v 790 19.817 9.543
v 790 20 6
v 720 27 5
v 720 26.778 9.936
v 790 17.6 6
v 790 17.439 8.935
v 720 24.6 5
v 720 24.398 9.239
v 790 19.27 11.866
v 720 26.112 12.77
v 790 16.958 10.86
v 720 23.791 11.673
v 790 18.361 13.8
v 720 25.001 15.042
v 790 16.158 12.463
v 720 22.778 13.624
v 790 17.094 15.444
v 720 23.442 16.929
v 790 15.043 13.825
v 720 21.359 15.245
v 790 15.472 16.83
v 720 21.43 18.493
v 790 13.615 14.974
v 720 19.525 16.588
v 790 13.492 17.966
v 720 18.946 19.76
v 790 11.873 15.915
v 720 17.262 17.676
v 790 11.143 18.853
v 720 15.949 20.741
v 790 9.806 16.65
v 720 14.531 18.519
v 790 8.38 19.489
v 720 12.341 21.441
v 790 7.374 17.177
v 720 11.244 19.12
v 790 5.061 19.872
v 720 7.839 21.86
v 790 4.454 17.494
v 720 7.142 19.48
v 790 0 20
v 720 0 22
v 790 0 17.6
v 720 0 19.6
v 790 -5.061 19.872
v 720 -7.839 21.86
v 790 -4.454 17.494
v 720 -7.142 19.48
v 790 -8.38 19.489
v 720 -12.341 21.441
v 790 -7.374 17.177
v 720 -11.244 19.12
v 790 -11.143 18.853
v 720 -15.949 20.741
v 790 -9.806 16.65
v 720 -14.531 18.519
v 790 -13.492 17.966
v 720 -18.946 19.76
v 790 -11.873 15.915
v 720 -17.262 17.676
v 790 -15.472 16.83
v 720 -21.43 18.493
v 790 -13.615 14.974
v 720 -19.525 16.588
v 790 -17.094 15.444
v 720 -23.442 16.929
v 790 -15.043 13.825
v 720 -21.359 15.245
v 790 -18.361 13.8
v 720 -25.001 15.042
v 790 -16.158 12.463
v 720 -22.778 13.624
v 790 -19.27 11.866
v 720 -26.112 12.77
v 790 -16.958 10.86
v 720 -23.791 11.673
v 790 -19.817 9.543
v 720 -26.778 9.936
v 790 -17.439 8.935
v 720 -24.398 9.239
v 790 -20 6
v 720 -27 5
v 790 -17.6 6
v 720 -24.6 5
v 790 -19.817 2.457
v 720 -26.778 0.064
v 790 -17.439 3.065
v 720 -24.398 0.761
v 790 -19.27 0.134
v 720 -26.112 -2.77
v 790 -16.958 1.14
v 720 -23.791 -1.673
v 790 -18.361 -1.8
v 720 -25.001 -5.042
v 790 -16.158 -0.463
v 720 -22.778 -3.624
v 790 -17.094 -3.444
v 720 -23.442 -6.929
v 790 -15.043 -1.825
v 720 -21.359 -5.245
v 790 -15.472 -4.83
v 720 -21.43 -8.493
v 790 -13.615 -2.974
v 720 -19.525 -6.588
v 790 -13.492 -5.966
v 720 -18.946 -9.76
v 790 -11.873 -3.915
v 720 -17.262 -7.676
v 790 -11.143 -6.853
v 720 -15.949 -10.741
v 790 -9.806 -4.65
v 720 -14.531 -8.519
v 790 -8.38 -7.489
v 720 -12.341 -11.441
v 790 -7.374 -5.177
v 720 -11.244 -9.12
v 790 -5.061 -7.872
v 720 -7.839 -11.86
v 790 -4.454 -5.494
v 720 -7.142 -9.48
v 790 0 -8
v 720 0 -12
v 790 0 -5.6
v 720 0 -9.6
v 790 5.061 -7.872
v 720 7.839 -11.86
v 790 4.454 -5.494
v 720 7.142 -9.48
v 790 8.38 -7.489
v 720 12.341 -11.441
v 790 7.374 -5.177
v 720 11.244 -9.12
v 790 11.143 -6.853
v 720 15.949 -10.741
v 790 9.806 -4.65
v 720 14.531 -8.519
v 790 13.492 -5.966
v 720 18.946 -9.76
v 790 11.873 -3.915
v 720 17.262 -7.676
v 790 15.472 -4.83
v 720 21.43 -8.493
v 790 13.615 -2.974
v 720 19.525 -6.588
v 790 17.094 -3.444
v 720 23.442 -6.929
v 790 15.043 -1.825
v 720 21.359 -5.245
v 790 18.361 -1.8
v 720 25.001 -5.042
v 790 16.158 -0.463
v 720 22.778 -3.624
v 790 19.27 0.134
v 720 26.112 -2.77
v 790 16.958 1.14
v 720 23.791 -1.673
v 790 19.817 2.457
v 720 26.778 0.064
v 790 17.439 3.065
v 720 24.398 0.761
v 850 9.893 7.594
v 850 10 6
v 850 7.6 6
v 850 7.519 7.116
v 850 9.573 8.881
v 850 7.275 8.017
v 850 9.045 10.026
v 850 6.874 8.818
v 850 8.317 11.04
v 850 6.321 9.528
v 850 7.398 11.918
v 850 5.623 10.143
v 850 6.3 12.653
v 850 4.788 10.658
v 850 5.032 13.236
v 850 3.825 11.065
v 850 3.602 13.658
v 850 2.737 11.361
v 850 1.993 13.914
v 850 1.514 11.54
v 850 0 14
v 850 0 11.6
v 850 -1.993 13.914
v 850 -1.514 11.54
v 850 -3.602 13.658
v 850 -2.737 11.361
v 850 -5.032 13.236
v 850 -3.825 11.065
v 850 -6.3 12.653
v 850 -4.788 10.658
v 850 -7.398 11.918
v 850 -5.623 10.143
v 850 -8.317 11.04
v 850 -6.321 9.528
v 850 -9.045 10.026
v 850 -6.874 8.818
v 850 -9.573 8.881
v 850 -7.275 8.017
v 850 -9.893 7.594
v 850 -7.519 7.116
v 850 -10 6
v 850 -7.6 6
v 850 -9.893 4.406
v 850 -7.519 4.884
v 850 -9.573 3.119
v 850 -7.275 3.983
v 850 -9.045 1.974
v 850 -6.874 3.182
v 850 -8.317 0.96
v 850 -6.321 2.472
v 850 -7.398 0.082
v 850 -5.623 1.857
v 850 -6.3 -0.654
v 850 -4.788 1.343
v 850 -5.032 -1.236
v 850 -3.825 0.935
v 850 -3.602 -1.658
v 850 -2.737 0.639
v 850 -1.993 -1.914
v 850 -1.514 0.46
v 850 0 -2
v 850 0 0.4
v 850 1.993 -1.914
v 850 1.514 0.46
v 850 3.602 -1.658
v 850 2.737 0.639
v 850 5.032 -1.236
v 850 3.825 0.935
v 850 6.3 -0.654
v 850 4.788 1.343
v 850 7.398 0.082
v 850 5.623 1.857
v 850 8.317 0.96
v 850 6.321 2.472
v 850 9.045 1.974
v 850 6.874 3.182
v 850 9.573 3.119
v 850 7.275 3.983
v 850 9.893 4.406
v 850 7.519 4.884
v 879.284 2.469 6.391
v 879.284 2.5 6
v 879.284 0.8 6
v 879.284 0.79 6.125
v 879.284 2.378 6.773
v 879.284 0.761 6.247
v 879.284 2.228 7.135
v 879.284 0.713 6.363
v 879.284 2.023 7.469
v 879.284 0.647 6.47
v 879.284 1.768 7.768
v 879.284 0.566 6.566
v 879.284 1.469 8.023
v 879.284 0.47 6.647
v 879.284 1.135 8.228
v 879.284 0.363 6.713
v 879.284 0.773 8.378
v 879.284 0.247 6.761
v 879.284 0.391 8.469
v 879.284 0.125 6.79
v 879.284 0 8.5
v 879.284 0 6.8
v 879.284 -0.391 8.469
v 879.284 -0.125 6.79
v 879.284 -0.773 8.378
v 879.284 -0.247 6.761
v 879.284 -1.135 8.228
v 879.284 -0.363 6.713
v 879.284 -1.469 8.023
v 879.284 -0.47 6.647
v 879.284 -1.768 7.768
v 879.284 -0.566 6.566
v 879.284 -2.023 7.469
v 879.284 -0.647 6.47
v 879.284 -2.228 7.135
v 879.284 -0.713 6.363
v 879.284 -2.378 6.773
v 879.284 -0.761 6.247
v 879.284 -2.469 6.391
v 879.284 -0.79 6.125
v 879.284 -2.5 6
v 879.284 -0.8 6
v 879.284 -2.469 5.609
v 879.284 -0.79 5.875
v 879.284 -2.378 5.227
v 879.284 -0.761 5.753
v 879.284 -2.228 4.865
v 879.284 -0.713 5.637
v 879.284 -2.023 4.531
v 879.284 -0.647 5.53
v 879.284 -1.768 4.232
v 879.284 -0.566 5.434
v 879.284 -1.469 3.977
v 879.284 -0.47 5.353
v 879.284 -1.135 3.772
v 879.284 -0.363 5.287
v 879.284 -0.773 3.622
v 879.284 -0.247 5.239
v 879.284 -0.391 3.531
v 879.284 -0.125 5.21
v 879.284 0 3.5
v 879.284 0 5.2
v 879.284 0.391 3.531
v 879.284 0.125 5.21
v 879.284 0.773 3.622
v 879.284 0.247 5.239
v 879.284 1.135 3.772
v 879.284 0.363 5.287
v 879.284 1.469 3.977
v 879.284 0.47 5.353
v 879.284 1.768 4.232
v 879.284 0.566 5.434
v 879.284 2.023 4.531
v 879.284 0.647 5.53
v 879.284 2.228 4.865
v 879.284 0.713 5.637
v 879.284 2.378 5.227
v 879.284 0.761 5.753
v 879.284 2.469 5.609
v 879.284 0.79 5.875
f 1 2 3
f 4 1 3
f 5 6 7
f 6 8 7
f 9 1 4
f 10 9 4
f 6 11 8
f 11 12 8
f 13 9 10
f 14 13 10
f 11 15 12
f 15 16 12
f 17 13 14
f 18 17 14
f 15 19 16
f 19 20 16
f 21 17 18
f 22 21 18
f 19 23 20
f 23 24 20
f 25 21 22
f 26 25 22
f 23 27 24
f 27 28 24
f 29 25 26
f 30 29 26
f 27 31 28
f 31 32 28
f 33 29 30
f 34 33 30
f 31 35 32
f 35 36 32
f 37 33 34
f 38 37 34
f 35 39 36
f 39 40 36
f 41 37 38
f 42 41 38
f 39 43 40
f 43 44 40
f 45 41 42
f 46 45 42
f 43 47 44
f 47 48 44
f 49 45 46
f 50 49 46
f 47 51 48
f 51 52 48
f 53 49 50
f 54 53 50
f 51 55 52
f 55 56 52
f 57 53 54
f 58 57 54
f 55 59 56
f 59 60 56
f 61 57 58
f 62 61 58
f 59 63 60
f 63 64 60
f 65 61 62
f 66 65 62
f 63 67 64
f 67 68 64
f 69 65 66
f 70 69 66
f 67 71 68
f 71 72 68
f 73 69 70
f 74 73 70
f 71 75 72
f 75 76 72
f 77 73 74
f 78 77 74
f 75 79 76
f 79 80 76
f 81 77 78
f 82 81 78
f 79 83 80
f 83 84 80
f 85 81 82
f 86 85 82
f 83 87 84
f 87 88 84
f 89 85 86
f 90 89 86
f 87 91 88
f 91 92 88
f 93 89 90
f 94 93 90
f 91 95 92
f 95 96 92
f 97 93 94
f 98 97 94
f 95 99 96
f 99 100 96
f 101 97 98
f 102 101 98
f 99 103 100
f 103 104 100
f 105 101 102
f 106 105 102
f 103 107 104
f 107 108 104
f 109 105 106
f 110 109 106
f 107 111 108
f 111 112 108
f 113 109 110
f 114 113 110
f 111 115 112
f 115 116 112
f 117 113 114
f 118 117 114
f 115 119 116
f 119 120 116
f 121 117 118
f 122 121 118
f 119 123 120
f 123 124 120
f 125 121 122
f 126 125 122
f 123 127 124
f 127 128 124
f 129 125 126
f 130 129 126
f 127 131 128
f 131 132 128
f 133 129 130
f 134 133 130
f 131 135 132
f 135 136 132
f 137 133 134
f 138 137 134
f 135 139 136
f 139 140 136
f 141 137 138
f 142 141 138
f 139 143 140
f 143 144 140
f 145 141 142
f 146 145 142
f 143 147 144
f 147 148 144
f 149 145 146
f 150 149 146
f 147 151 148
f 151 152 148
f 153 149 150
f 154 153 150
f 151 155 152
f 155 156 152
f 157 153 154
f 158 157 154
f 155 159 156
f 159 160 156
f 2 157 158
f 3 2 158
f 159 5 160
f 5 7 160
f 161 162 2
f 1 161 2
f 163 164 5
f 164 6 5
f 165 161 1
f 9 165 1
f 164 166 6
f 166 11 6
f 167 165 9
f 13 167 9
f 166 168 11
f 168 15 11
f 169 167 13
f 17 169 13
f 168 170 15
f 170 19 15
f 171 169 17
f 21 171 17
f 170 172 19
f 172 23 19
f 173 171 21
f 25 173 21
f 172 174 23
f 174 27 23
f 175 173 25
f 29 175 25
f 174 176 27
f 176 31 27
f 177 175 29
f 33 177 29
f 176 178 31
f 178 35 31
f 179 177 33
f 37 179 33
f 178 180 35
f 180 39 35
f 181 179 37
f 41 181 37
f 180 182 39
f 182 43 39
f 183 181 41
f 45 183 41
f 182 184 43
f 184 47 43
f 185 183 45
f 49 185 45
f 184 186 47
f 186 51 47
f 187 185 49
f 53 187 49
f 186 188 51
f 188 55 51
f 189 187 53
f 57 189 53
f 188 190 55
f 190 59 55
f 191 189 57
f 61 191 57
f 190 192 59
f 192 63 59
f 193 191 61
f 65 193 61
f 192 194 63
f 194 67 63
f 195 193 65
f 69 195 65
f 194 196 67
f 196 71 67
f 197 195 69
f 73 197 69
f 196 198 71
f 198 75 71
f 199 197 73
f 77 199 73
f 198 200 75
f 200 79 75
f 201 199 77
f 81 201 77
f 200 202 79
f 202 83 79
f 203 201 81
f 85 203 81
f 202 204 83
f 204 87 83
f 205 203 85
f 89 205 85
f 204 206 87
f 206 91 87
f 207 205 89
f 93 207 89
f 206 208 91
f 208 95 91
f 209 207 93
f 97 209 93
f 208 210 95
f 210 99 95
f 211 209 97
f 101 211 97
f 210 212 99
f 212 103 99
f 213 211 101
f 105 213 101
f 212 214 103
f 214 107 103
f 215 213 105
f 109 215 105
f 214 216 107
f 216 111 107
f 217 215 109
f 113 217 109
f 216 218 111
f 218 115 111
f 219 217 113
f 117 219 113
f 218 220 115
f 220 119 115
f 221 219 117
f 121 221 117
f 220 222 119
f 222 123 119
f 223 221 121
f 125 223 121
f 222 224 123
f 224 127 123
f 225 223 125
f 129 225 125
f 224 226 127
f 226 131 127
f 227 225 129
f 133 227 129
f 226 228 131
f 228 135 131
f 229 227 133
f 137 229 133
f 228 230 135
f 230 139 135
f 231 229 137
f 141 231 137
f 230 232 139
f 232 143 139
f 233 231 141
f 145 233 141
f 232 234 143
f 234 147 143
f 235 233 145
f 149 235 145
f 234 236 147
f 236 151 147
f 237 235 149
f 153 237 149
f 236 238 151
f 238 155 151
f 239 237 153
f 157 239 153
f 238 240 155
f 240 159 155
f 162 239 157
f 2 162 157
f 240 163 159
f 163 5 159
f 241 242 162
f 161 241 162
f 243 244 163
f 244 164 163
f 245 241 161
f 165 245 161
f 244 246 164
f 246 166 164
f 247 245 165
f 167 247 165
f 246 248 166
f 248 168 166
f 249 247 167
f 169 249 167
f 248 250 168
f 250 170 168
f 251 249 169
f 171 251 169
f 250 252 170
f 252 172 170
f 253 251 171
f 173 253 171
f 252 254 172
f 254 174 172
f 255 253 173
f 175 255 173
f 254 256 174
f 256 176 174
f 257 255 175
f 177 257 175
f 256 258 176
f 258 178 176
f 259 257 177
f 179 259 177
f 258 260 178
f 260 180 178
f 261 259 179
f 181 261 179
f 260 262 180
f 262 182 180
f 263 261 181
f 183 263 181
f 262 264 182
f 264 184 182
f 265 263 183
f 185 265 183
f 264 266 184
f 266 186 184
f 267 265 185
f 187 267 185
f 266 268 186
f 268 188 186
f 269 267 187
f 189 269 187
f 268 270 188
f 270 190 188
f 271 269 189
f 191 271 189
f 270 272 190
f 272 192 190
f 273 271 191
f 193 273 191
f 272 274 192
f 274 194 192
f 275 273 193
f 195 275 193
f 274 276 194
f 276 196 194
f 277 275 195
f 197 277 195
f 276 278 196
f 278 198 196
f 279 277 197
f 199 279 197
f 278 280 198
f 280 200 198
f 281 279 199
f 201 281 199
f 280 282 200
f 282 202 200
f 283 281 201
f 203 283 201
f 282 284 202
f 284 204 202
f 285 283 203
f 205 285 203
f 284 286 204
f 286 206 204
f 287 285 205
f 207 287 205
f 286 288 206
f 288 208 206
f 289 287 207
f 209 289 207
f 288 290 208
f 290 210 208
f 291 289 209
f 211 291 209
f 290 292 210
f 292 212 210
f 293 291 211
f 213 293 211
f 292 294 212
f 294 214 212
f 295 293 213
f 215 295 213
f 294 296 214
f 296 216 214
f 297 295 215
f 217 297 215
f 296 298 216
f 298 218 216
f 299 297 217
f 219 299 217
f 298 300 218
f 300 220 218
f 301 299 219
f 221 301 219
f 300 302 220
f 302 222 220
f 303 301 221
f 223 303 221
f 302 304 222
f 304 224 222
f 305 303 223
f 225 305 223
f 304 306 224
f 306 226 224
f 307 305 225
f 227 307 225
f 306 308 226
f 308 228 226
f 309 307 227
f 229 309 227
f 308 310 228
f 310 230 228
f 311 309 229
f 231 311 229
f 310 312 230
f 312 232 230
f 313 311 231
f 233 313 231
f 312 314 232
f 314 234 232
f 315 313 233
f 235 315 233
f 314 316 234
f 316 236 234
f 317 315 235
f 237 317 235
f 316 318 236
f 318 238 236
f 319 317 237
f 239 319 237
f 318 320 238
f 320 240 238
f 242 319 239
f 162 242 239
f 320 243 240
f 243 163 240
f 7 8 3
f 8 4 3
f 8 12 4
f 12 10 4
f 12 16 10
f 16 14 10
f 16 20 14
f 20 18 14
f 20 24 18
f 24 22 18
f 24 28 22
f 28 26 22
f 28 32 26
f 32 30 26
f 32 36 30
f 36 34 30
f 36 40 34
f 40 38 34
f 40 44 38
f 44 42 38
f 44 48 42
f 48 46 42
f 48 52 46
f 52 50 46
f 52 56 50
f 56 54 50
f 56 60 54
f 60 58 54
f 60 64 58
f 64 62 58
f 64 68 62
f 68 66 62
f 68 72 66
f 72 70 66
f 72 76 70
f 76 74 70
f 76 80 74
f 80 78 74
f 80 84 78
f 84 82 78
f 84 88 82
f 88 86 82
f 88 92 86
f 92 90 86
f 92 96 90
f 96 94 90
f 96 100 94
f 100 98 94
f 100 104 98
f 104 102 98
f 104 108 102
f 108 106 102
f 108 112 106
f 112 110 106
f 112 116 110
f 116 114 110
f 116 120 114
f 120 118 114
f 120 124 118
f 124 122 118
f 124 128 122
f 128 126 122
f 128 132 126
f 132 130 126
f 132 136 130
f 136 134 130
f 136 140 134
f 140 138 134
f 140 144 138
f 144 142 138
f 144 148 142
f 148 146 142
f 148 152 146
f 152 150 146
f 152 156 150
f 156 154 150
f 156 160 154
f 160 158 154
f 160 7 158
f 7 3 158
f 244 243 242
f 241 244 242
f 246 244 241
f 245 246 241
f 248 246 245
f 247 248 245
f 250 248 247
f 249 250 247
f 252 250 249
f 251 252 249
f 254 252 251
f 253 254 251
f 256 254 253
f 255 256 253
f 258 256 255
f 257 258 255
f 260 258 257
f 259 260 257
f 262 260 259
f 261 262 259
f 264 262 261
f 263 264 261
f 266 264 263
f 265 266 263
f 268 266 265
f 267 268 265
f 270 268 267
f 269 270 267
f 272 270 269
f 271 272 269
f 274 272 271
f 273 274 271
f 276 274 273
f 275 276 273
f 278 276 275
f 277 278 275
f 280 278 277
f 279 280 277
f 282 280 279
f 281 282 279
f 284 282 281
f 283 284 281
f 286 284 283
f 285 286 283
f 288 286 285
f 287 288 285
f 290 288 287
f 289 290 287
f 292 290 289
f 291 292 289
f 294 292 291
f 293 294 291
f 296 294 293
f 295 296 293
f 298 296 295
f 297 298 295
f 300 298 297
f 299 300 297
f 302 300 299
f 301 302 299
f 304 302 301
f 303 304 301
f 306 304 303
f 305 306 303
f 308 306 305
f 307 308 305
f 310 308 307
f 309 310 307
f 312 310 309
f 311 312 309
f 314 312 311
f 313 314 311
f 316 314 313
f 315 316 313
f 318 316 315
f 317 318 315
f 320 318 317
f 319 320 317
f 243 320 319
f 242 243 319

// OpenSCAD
polyhedron(points=[[720.0, 27.0, 5.0], [720.0, 26.777933, 9.935569], [720.0, 26.11167, 12.770289], [720.0, 25.000634, 15.041843], [720.0, 23.442407, 16.928744], [720.0, 21.429914, 18.492909], [720.0, 18.945652, 19.760034], [720.0, 15.94881, 20.74114], [720.0, 12.341047, 21.440681], [720.0, 7.838845, 21.86018], [720.0, 0.0, 22.0], [720.0, -7.838845, 21.86018], [720.0, -12.341047, 21.440681], [720.0, -15.94881, 20.74114], [720.0, -18.945652, 19.760034], [720.0, -21.429914, 18.492909], [720.0, -23.442407, 16.928744], [720.0, -25.000634, 15.041843], [720.0, -26.11167, 12.770289], [720.0, -26.777933, 9.935569], [720.0, -27.0, 5.0], [720.0, -26.777933, 0.064431], [720.0, -26.11167, -2.770289], [720.0, -25.000634, -5.041843], [720.0, -23.442407, -6.928744], [720.0, -21.429914, -8.492909], [720.0, -18.945652, -9.760034], [720.0, -15.94881, -10.74114], [720.0, -12.341047, -11.440681], [720.0, -7.838845, -11.86018], [720.0, -0.0, -12.0], [720.0, 7.838845, -11.86018], [720.0, 12.341047, -11.440681], [720.0, 15.94881, -10.74114], [720.0, 18.945652, -9.760034], [720.0, 21.429914, -8.492909], [720.0, 23.442407, -6.928744], [720.0, 25.000634, -5.041843], [720.0, 26.11167, -2.770289], [720.0, 26.777933, 0.064431], [720.0, 24.6, 5.0], [720.0, 24.397672, 9.238783], [720.0, 23.790633, 11.673307], [720.0, 22.778355, 13.624171], [720.0, 21.358637, 15.244686], [720.0, 19.525033, 16.588028], [720.0, 17.261594, 17.676264], [720.0, 14.531138, 18.518861], [720.0, 11.244065, 19.119644], [720.0, 7.142058, 19.479919], [720.0, 0.0, 19.6], [720.0, -7.142058, 19.479919], [720.0, -11.244065, 19.119644], [720.0, -14.531138, 18.518861], [720.0, -17.261594, 17.676264], [720.0, -19.525033, 16.588028], [720.0, -21.358637, 15.244686], [720.0, -22.778355, 13.624171], [720.0, -23.790633, 11.673307], [720.0, -24.397672, 9.238783], [720.0, -24.6, 5.0], [720.0, -24.397672, 0.761217], [720.0, -23.790633, -1.673307], [720.0, -22.778355, -3.624171], [720.0, -21.358637, -5.244686], [720.0, -19.525033, -6.588028], [720.0, -17.261594, -7.676264], [720.0, -14.531138, -8.518861], [720.0, -11.244065, -9.119644], [720.0, -7.142058, -9.479919], [720.0, -0.0, -9.6], [720.0, 7.142058, -9.479919], [720.0, 11.244065, -9.119644], [720.0, 14.531138, -8.518861], [720.0, 17.261594, -7.676264], [720.0, 19.525033, -6.588028], [720.0, 21.358637, -5.244686], [720.0, 22.778355, -3.624171], [720.0, 23.790633, -1.673307], [720.0, 24.397672, 0.761217], [790.0, 20.0, 6.0], [790.0, 19.817312, 9.542723], [790.0, 19.270214, 11.865934], [790.0, 18.361355, 13.799892], [790.0, 17.094267, 15.444499], [790.0, 15.471678, 16.830174], [790.0, 13.492141, 17.965987], [790.0, 11.142703, 18.852948], [790.0, 8.379906, 19.48915], [790.0, 5.061033, 19.872119], [790.0, 0.0, 20.0], [790.0, -5.061033, 19.872119], [790.0, -8.379906, 19.48915], [790.0, -11.142703, 18.852948], [790.0, -13.492141, 17.965987], [790.0, -15.471678, 16.830174], [790.0, -17.094267, 15.444499], [790.0, -18.361355, 13.799892], [790.0, -19.270214, 11.865934], [790.0, -19.817312, 9.542723], [790.0, -20.0, 6.0], [790.0, -19.817312, 2.457277], [790.0, -19.270214, 0.134066], [790.0, -18.361355, -1.799892], [790.0, -17.094267, -3.444499], [790.0, -15.471678, -4.830174], [790.0, -13.492141, -5.965987], [790.0, -11.142703, -6.852948], [790.0, -8.379906, -7.48915], [790.0, -5.061033, -7.872119], [790.0, -0.0, -8.0], [790.0, 5.061033, -7.872119], [790.0, 8.379906, -7.48915], [790.0, 11.142703, -6.852948], [790.0, 13.492141, -5.965987], [790.0, 15.471678, -4.830174], [790.0, 17.094267, -3.444499], [790.0, 18.361355, -1.799892], [790.0, 19.270214, 0.134066], [790.0, 19.817312, 2.457277], [790.0, 17.6, 6.0], [790.0, 17.439235, 8.935399], [790.0, 16.957788, 10.860346], [790.0, 16.157992, 12.462768], [790.0, 15.042955, 13.825442], [790.0, 13.615076, 14.973573], [790.0, 11.873084, 15.914675], [790.0, 9.805579, 16.649586], [790.0, 7.374317, 17.176724], [790.0, 4.453709, 17.494041], [790.0, 0.0, 17.6], [790.0, -4.453709, 17.494041], [790.0, -7.374317, 17.176724], [790.0, -9.805579, 16.649586], [790.0, -11.873084, 15.914675], [790.0, -13.615076, 14.973573], [790.0, -15.042955, 13.825442], [790.0, -16.157992, 12.462768], [790.0, -16.957788, 10.860346], [790.0, -17.439235, 8.935399], [790.0, -17.6, 6.0], [790.0, -17.439235, 3.064601], [790.0, -16.957788, 1.139654], [790.0, -16.157992, -0.462768], [790.0, -15.042955, -1.825442], [790.0, -13.615076, -2.973573], [790.0, -11.873084, -3.914675], [790.0, -9.805579, -4.649586], [790.0, -7.374317, -5.176724], [790.0, -4.453709, -5.494041], [790.0, -0.0, -5.6], [790.0, 4.453709, -5.494041], [790.0, 7.374317, -5.176724], [790.0, 9.805579, -4.649586], [790.0, 11.873084, -3.914675], [790.0, 13.615076, -2.973573], [790.0, 15.042955, -1.825442], [790.0, 16.157992, -0.462768], [790.0, 16.957788, 1.139654], [790.0, 17.439235, 3.064601], [850.0, 10.0, 6.0], [850.0, 9.892856, 7.594078], [850.0, 9.57302, 8.881352], [850.0, 9.0452, 10.025963], [850.0, 8.316932, 11.039768], [850.0, 7.398052, 11.918442], [850.0, 6.299711, 12.653546], [850.0, 5.032454, 13.23616], [850.0, 3.601691, 13.658416], [850.0, 1.992597, 13.914285], [850.0, 0.0, 14.0], [850.0, -1.992597, 13.914285], [850.0, -3.601691, 13.658416], [850.0, -5.032454, 13.23616], [850.0, -6.299711, 12.653546], [850.0, -7.398052, 11.918442], [850.0, -8.316932, 11.039768], [850.0, -9.0452, 10.025963], [850.0, -9.57302, 8.881352], [850.0, -9.892856, 7.594078], [850.0, -10.0, 6.0], [850.0, -9.892856, 4.405922], [850.0, -9.57302, 3.118648], [850.0, -9.0452, 1.974037], [850.0, -8.316932, 0.960232], [850.0, -7.398052, 0.081558], [850.0, -6.299711, -0.653546], [850.0, -5.032454, -1.23616], [850.0, -3.601691, -1.658416], [850.0, -1.992597, -1.914285], [850.0, -0.0, -2.0], [850.0, 1.992597, -1.914285], [850.0, 3.601691, -1.658416], [850.0, 5.032454, -1.23616], [850.0, 6.299711, -0.653546], [850.0, 7.398052, 0.081558], [850.0, 8.316932, 0.960232], [850.0, 9.0452, 1.974037], [850.0, 9.57302, 3.118648], [850.0, 9.892856, 4.405922], [850.0, 7.6, 6.0], [850.0, 7.51857, 7.115854], [850.0, 7.275495, 8.016947], [850.0, 6.874352, 8.818174], [850.0, 6.320869, 9.527838], [850.0, 5.62252, 10.142909], [850.0, 4.78778, 10.657482], [850.0, 3.824665, 11.065312], [850.0, 2.737285, 11.360891], [850.0, 1.514374, 11.539999], [850.0, 0.0, 11.6], [850.0, -1.514374, 11.539999], [850.0, -2.737285, 11.360891], [850.0, -3.824665, 11.065312], [850.0, -4.78778, 10.657482], [850.0, -5.62252, 10.142909], [850.0, -6.320869, 9.527838], [850.0, -6.874352, 8.818174], [850.0, -7.275495, 8.016947], [850.0, -7.51857, 7.115854], [850.0, -7.6, 6.0], [850.0, -7.51857, 4.884146], [850.0, -7.275495, 3.983053], [850.0, -6.874352, 3.181826], [850.0, -6.320869, 2.472162], [850.0, -5.62252, 1.857091], [850.0, -4.78778, 1.342518], [850.0, -3.824665, 0.934688], [850.0, -2.737285, 0.639109], [850.0, -1.514374, 0.460001], [850.0, -0.0, 0.4], [850.0, 1.514374, 0.460001], [850.0, 2.737285, 0.639109], [850.0, 3.824665, 0.934688], [850.0, 4.78778, 1.342518], [850.0, 5.62252, 1.857091], [850.0, 6.320869, 2.472162], [850.0, 6.874352, 3.181826], [850.0, 7.275495, 3.983053], [850.0, 7.51857, 4.884146], [879.283887, 2.5, 6.0], [879.283887, 2.469221, 6.391086], [879.283887, 2.377641, 6.772542], [879.283887, 2.227516, 7.134976], [879.283887, 2.022542, 7.469463], [879.283887, 1.767767, 7.767767], [879.283887, 1.469463, 8.022542], [879.283887, 1.134976, 8.227516], [879.283887, 0.772542, 8.377641], [879.283887, 0.391086, 8.469221], [879.283887, 0.0, 8.5], [879.283887, -0.391086, 8.469221], [879.283887, -0.772542, 8.377641], [879.283887, -1.134976, 8.227516], [879.283887, -1.469463, 8.022542], [879.283887, -1.767767, 7.767767], [879.283887, -2.022542, 7.469463], [879.283887, -2.227516, 7.134976], [879.283887, -2.377641, 6.772542], [879.283887, -2.469221, 6.391086], [879.283887, -2.5, 6.0], [879.283887, -2.469221, 5.608914], [879.283887, -2.377641, 5.227458], [879.283887, -2.227516, 4.865024], [879.283887, -2.022542, 4.530537], [879.283887, -1.767767, 4.232233], [879.283887, -1.469463, 3.977458], [879.283887, -1.134976, 3.772484], [879.283887, -0.772542, 3.622359], [879.283887, -0.391086, 3.530779], [879.283887, -0.0, 3.5], [879.283887, 0.391086, 3.530779], [879.283887, 0.772542, 3.622359], [879.283887, 1.134976, 3.772484], [879.283887, 1.469463, 3.977458], [879.283887, 1.767767, 4.232233], [879.283887, 2.022542, 4.530537], [879.283887, 2.227516, 4.865024], [879.283887, 2.377641, 5.227458], [879.283887, 2.469221, 5.608914], [879.283887, 0.8, 6.0], [879.283887, 0.790151, 6.125148], [879.283887, 0.760845, 6.247214], [879.283887, 0.712805, 6.363192], [879.283887, 0.647214, 6.470228], [879.283887, 0.565685, 6.565685], [879.283887, 0.470228, 6.647214], [879.283887, 0.363192, 6.712805], [879.283887, 0.247214, 6.760845], [879.283887, 0.125148, 6.790151], [879.283887, 0.0, 6.8], [879.283887, -0.125148, 6.790151], [879.283887, -0.247214, 6.760845], [879.283887, -0.363192, 6.712805], [879.283887, -0.470228, 6.647214], [879.283887, -0.565685, 6.565685], [879.283887, -0.647214, 6.470228], [879.283887, -0.712805, 6.363192], [879.283887, -0.760845, 6.247214], [879.283887, -0.790151, 6.125148], [879.283887, -0.8, 6.0], [879.283887, -0.790151, 5.874852], [879.283887, -0.760845, 5.752786], [879.283887, -0.712805, 5.636808], [879.283887, -0.647214, 5.529772], [879.283887, -0.565685, 5.434315], [879.283887, -0.470228, 5.352786], [879.283887, -0.363192, 5.287195], [879.283887, -0.247214, 5.239155], [879.283887, -0.125148, 5.209849], [879.283887, -0.0, 5.2], [879.283887, 0.125148, 5.209849], [879.283887, 0.247214, 5.239155], [879.283887, 0.363192, 5.287195], [879.283887, 0.470228, 5.352786], [879.283887, 0.565685, 5.434315], [879.283887, 0.647214, 5.529772], [879.283887, 0.712805, 5.636808], [879.283887, 0.760845, 5.752786], [879.283887, 0.790151, 5.874852]], faces=[[0, 80, 81], [0, 81, 1], [40, 121, 120], [40, 41, 121], [1, 81, 82], [1, 82, 2], [41, 122, 121], [41, 42, 122], [2, 82, 83], [2, 83, 3], [42, 123, 122], [42, 43, 123], [3, 83, 84], [3, 84, 4], [43, 124, 123], [43, 44, 124], [4, 84, 85], [4, 85, 5], [44, 125, 124], [44, 45, 125], [5, 85, 86], [5, 86, 6], [45, 126, 125], [45, 46, 126], [6, 86, 87], [6, 87, 7], [46, 127, 126], [46, 47, 127], [7, 87, 88], [7, 88, 8], [47, 128, 127], [47, 48, 128], [8, 88, 89], [8, 89, 9], [48, 129, 128], [48, 49, 129], [9, 89, 90], [9, 90, 10], [49, 130, 129], [49, 50, 130], [10, 90, 91], [10, 91, 11], [50, 131, 130], [50, 51, 131], [11, 91, 92], [11, 92, 12], [51, 132, 131], [51, 52, 132], [12, 92, 93], [12, 93, 13], [52, 133, 132], [52, 53, 133], [13, 93, 94], [13, 94, 14], [53, 134, 133], [53, 54, 134], [14, 94, 95], [14, 95, 15], [54, 135, 134], [54, 55, 135], [15, 95, 96], [15, 96, 16], [55, 136, 135], [55, 56, 136], [16, 96, 97], [16, 97, 17], [56, 137, 136], [56, 57, 137], [17, 97, 98], [17, 98, 18], [57, 138, 137], [57, 58, 138], [18, 98, 99], [18, 99, 19], [58, 139, 138], [58, 59, 139], [19, 99, 100], [19, 100, 20], [59, 140, 139], [59, 60, 140], [20, 100, 101], [20, 101, 21], [60, 141, 140], [60, 61, 141], [21, 101, 102], [21, 102, 22], [61, 142, 141], [61, 62, 142], [22, 102, 103], [22, 103, 23], [62, 143, 142], [62, 63, 143], [23, 103, 104], [23, 104, 24], [63, 144, 143], [63, 64, 144], [24, 104, 105], [24, 105, 25], [64, 145, 144], [64, 65, 145], [25, 105, 106], [25, 106, 26], [65, 146, 145], [65, 66, 146], [26, 106, 107], [26, 107, 27], [66, 147, 146], [66, 67, 147], [27, 107, 108], [27, 108, 28], [67, 148, 147], [67, 68, 148], [28, 108, 109], [28, 109, 29], [68, 149, 148], [68, 69, 149], [29, 109, 110], [29, 110, 30], [69, 150, 149], [69, 70, 150], [30, 110, 111], [30, 111, 31], [70, 151, 150], [70, 71, 151], [31, 111, 112], [31, 112, 32], [71, 152, 151], [71, 72, 152], [32, 112, 113], [32, 113, 33], [72, 153, 152], [72, 73, 153], [33, 113, 114], [33, 114, 34], [73, 154, 153], [73, 74, 154], [34, 114, 115], [34, 115, 35], [74, 155, 154], [74, 75, 155], [35, 115, 116], [35, 116, 36], [75, 156, 155], [75, 76, 156], [36, 116, 117], [36, 117, 37], [76, 157, 156], [76, 77, 157], [37, 117, 118], [37, 118, 38], [77, 158, 157], [77, 78, 158], [38, 118, 119], [38, 119, 39], [78, 159, 158], [78, 79, 159], [39, 119, 80], [39, 80, 0], [79, 120, 159], [79, 40, 120], [80, 160, 161], [80, 161, 81], [120, 201, 200], [120, 121, 201], [81, 161, 162], [81, 162, 82], [121, 202, 201], [121, 122, 202], [82, 162, 163], [82, 163, 83], [122, 203, 202], [122, 123, 203], [83, 163, 164], [83, 164, 84], [123, 204, 203], [123, 124, 204], [84, 164, 165], [84, 165, 85], [124, 205, 204], [124, 125, 205], [85, 165, 166], [85, 166, 86], [125, 206, 205], [125, 126, 206], [86, 166, 167], [86, 167, 87], [126, 207, 206], [126, 127, 207], [87, 167, 168], [87, 168, 88], [127, 208, 207], [127, 128, 208], [88, 168, 169], [88, 169, 89], [128, 209, 208], [128, 129, 209], [89, 169, 170], [89, 170, 90], [129, 210, 209], [129, 130, 210], [90, 170, 171], [90, 171, 91], [130, 211, 210], [130, 131, 211], [91, 171, 172], [91, 172, 92], [131, 212, 211], [131, 132, 212], [92, 172, 173], [92, 173, 93], [132, 213, 212], [132, 133, 213], [93, 173, 174], [93, 174, 94], [133, 214, 213], [133, 134, 214], [94, 174, 175], [94, 175, 95], [134, 215, 214], [134, 135, 215], [95, 175, 176], [95, 176, 96], [135, 216, 215], [135, 136, 216], [96, 176, 177], [96, 177, 97], [136, 217, 216], [136, 137, 217], [97, 177, 178], [97, 178, 98], [137, 218, 217], [137, 138, 218], [98, 178, 179], [98, 179, 99], [138, 219, 218], [138, 139, 219], [99, 179, 180], [99, 180, 100], [139, 220, 219], [139, 140, 220], [100, 180, 181], [100, 181, 101], [140, 221, 220], [140, 141, 221], [101, 181, 182], [101, 182, 102], [141, 222, 221], [141, 142, 222], [102, 182, 183], [102, 183, 103], [142, 223, 222], [142, 143, 223], [103, 183, 184], [103, 184, 104], [143, 224, 223], [143, 144, 224], [104, 184, 185], [104, 185, 105], [144, 225, 224], [144, 145, 225], [105, 185, 186], [105, 186, 106], [145, 226, 225], [145, 146, 226], [106, 186, 187], [106, 187, 107], [146, 227, 226], [146, 147, 227], [107, 187, 188], [107, 188, 108], [147, 228, 227], [147, 148, 228], [108, 188, 189], [108, 189, 109], [148, 229, 228], [148, 149, 229], [109, 189, 190], [109, 190, 110], [149, 230, 229], [149, 150, 230], [110, 190, 191], [110, 191, 111], [150, 231, 230], [150, 151, 231], [111, 191, 192], [111, 192, 112], [151, 232, 231], [151, 152, 232], [112, 192, 193], [112, 193, 113], [152, 233, 232], [152, 153, 233], [113, 193, 194], [113, 194, 114], [153, 234, 233], [153, 154, 234], [114, 194, 195], [114, 195, 115], [154, 235, 234], [154, 155, 235], [115, 195, 196], [115, 196, 116], [155, 236, 235], [155, 156, 236], [116, 196, 197], [116, 197, 117], [156, 237, 236], [156, 157, 237], [117, 197, 198], [117, 198, 118], [157, 238, 237], [157, 158, 238], [118, 198, 199], [118, 199, 119], [158, 239, 238], [158, 159, 239], [119, 199, 160], [119, 160, 80], [159, 200, 239], [159, 120, 200], [160, 240, 241], [160, 241, 161], [200, 281, 280], [200, 201, 281], [161, 241, 242], [161, 242, 162], [201, 282, 281], [201, 202, 282], [162, 242, 243], [162, 243, 163], [202, 283, 282], [202, 203, 283], [163, 243, 244], [163, 244, 164], [203, 284, 283], [203, 204, 284], [164, 244, 245], [164, 245, 165], [204, 285, 284], [204, 205, 285], [165, 245, 246], [165, 246, 166], [205, 286, 285], [205, 206, 286], [166, 246, 247], [166, 247, 167], [206, 287, 286], [206, 207, 287], [167, 247, 248], [167, 248, 168], [207, 288, 287], [207, 208, 288], [168, 248, 249], [168, 249, 169], [208, 289, 288], [208, 209, 289], [169, 249, 250], [169, 250, 170], [209, 290, 289], [209, 210, 290], [170, 250, 251], [170, 251, 171], [210, 291, 290], [210, 211, 291], [171, 251, 252], [171, 252, 172], [211, 292, 291], [211, 212, 292], [172, 252, 253], [172, 253, 173], [212, 293, 292], [212, 213, 293], [173, 253, 254], [173, 254, 174], [213, 294, 293], [213, 214, 294], [174, 254, 255], [174, 255, 175], [214, 295, 294], [214, 215, 295], [175, 255, 256], [175, 256, 176], [215, 296, 295], [215, 216, 296], [176, 256, 257], [176, 257, 177], [216, 297, 296], [216, 217, 297], [177, 257, 258], [177, 258, 178], [217, 298, 297], [217, 218, 298], [178, 258, 259], [178, 259, 179], [218, 299, 298], [218, 219, 299], [179, 259, 260], [179, 260, 180], [219, 300, 299], [219, 220, 300], [180, 260, 261], [180, 261, 181], [220, 301, 300], [220, 221, 301], [181, 261, 262], [181, 262, 182], [221, 302, 301], [221, 222, 302], [182, 262, 263], [182, 263, 183], [222, 303, 302], [222, 223, 303], [183, 263, 264], [183, 264, 184], [223, 304, 303], [223, 224, 304], [184, 264, 265], [184, 265, 185], [224, 305, 304], [224, 225, 305], [185, 265, 266], [185, 266, 186], [225, 306, 305], [225, 226, 306], [186, 266, 267], [186, 267, 187], [226, 307, 306], [226, 227, 307], [187, 267, 268], [187, 268, 188], [227, 308, 307], [227, 228, 308], [188, 268, 269], [188, 269, 189], [228, 309, 308], [228, 229, 309], [189, 269, 270], [189, 270, 190], [229, 310, 309], [229, 230, 310], [190, 270, 271], [190, 271, 191], [230, 311, 310], [230, 231, 311], [191, 271, 272], [191, 272, 192], [231, 312, 311], [231, 232, 312], [192, 272, 273], [192, 273, 193], [232, 313, 312], [232, 233, 313], [193, 273, 274], [193, 274, 194], [233, 314, 313], [233, 234, 314], [194, 274, 275], [194, 275, 195], [234, 315, 314], [234, 235, 315], [195, 275, 276], [195, 276, 196], [235, 316, 315], [235, 236, 316], [196, 276, 277], [196, 277, 197], [236, 317, 316], [236, 237, 317], [197, 277, 278], [197, 278, 198], [237, 318, 317], [237, 238, 318], [198, 278, 279], [198, 279, 199], [238, 319, 318], [238, 239, 319], [199, 279, 240], [199, 240, 160], [239, 280, 319], [239, 200, 280], [0, 41, 40], [0, 1, 41], [1, 42, 41], [1, 2, 42], [2, 43, 42], [2, 3, 43], [3, 44, 43], [3, 4, 44], [4, 45, 44], [4, 5, 45], [5, 46, 45], [5, 6, 46], [6, 47, 46], [6, 7, 47], [7, 48, 47], [7, 8, 48], [8, 49, 48], [8, 9, 49], [9, 50, 49], [9, 10, 50], [10, 51, 50], [10, 11, 51], [11, 52, 51], [11, 12, 52], [12, 53, 52], [12, 13, 53], [13, 54, 53], [13, 14, 54], [14, 55, 54], [14, 15, 55], [15, 56, 55], [15, 16, 56], [16, 57, 56], [16, 17, 57], [17, 58, 57], [17, 18, 58], [18, 59, 58], [18, 19, 59], [19, 60, 59], [19, 20, 60], [20, 61, 60], [20, 21, 61], [21, 62, 61], [21, 22, 62], [22, 63, 62], [22, 23, 63], [23, 64, 63], [23, 24, 64], [24, 65, 64], [24, 25, 65], [25, 66, 65], [25, 26, 66], [26, 67, 66], [26, 27, 67], [27, 68, 67], [27, 28, 68], [28, 69, 68], [28, 29, 69], [29, 70, 69], [29, 30, 70], [30, 71, 70], [30, 31, 71], [31, 72, 71], [31, 32, 72], [32, 73, 72], [32, 33, 73], [33, 74, 73], [33, 34, 74], [34, 75, 74], [34, 35, 75], [35, 76, 75], [35, 36, 76], [36, 77, 76], [36, 37, 77], [37, 78, 77], [37, 38, 78], [38, 79, 78], [38, 39, 79], [39, 40, 79], [39, 0, 40], [240, 280, 281], [240, 281, 241], [241, 281, 282], [241, 282, 242], [242, 282, 283], [242, 283, 243], [243, 283, 284], [243, 284, 244], [244, 284, 285], [244, 285, 245], [245, 285, 286], [245, 286, 246], [246, 286, 287], [246, 287, 247], [247, 287, 288], [247, 288, 248], [248, 288, 289], [248, 289, 249], [249, 289, 290], [249, 290, 250], [250, 290, 291], [250, 291, 251], [251, 291, 292], [251, 292, 252], [252, 292, 293], [252, 293, 253], [253, 293, 294], [253, 294, 254], [254, 294, 295], [254, 295, 255], [255, 295, 296], [255, 296, 256], [256, 296, 297], [256, 297, 257], [257, 297, 298], [257, 298, 258], [258, 298, 299], [258, 299, 259], [259, 299, 300], [259, 300, 260], [260, 300, 301], [260, 301, 261], [261, 301, 302], [261, 302, 262], [262, 302, 303], [262, 303, 263], [263, 303, 304], [263, 304, 264], [264, 304, 305], [264, 305, 265], [265, 305, 306], [265, 306, 266], [266, 306, 307], [266, 307, 267], [267, 307, 308], [267, 308, 268], [268, 308, 309], [268, 309, 269], [269, 309, 310], [269, 310, 270], [270, 310, 311], [270, 311, 271], [271, 311, 312], [271, 312, 272], [272, 312, 313], [272, 313, 273], [273, 313, 314], [273, 314, 274], [274, 314, 315], [274, 315, 275], [275, 315, 316], [275, 316, 276], [276, 316, 317], [276, 317, 277], [277, 317, 318], [277, 318, 278], [278, 318, 319], [278, 319, 279], [279, 319, 280], [279, 280, 240]], convexity=30);
